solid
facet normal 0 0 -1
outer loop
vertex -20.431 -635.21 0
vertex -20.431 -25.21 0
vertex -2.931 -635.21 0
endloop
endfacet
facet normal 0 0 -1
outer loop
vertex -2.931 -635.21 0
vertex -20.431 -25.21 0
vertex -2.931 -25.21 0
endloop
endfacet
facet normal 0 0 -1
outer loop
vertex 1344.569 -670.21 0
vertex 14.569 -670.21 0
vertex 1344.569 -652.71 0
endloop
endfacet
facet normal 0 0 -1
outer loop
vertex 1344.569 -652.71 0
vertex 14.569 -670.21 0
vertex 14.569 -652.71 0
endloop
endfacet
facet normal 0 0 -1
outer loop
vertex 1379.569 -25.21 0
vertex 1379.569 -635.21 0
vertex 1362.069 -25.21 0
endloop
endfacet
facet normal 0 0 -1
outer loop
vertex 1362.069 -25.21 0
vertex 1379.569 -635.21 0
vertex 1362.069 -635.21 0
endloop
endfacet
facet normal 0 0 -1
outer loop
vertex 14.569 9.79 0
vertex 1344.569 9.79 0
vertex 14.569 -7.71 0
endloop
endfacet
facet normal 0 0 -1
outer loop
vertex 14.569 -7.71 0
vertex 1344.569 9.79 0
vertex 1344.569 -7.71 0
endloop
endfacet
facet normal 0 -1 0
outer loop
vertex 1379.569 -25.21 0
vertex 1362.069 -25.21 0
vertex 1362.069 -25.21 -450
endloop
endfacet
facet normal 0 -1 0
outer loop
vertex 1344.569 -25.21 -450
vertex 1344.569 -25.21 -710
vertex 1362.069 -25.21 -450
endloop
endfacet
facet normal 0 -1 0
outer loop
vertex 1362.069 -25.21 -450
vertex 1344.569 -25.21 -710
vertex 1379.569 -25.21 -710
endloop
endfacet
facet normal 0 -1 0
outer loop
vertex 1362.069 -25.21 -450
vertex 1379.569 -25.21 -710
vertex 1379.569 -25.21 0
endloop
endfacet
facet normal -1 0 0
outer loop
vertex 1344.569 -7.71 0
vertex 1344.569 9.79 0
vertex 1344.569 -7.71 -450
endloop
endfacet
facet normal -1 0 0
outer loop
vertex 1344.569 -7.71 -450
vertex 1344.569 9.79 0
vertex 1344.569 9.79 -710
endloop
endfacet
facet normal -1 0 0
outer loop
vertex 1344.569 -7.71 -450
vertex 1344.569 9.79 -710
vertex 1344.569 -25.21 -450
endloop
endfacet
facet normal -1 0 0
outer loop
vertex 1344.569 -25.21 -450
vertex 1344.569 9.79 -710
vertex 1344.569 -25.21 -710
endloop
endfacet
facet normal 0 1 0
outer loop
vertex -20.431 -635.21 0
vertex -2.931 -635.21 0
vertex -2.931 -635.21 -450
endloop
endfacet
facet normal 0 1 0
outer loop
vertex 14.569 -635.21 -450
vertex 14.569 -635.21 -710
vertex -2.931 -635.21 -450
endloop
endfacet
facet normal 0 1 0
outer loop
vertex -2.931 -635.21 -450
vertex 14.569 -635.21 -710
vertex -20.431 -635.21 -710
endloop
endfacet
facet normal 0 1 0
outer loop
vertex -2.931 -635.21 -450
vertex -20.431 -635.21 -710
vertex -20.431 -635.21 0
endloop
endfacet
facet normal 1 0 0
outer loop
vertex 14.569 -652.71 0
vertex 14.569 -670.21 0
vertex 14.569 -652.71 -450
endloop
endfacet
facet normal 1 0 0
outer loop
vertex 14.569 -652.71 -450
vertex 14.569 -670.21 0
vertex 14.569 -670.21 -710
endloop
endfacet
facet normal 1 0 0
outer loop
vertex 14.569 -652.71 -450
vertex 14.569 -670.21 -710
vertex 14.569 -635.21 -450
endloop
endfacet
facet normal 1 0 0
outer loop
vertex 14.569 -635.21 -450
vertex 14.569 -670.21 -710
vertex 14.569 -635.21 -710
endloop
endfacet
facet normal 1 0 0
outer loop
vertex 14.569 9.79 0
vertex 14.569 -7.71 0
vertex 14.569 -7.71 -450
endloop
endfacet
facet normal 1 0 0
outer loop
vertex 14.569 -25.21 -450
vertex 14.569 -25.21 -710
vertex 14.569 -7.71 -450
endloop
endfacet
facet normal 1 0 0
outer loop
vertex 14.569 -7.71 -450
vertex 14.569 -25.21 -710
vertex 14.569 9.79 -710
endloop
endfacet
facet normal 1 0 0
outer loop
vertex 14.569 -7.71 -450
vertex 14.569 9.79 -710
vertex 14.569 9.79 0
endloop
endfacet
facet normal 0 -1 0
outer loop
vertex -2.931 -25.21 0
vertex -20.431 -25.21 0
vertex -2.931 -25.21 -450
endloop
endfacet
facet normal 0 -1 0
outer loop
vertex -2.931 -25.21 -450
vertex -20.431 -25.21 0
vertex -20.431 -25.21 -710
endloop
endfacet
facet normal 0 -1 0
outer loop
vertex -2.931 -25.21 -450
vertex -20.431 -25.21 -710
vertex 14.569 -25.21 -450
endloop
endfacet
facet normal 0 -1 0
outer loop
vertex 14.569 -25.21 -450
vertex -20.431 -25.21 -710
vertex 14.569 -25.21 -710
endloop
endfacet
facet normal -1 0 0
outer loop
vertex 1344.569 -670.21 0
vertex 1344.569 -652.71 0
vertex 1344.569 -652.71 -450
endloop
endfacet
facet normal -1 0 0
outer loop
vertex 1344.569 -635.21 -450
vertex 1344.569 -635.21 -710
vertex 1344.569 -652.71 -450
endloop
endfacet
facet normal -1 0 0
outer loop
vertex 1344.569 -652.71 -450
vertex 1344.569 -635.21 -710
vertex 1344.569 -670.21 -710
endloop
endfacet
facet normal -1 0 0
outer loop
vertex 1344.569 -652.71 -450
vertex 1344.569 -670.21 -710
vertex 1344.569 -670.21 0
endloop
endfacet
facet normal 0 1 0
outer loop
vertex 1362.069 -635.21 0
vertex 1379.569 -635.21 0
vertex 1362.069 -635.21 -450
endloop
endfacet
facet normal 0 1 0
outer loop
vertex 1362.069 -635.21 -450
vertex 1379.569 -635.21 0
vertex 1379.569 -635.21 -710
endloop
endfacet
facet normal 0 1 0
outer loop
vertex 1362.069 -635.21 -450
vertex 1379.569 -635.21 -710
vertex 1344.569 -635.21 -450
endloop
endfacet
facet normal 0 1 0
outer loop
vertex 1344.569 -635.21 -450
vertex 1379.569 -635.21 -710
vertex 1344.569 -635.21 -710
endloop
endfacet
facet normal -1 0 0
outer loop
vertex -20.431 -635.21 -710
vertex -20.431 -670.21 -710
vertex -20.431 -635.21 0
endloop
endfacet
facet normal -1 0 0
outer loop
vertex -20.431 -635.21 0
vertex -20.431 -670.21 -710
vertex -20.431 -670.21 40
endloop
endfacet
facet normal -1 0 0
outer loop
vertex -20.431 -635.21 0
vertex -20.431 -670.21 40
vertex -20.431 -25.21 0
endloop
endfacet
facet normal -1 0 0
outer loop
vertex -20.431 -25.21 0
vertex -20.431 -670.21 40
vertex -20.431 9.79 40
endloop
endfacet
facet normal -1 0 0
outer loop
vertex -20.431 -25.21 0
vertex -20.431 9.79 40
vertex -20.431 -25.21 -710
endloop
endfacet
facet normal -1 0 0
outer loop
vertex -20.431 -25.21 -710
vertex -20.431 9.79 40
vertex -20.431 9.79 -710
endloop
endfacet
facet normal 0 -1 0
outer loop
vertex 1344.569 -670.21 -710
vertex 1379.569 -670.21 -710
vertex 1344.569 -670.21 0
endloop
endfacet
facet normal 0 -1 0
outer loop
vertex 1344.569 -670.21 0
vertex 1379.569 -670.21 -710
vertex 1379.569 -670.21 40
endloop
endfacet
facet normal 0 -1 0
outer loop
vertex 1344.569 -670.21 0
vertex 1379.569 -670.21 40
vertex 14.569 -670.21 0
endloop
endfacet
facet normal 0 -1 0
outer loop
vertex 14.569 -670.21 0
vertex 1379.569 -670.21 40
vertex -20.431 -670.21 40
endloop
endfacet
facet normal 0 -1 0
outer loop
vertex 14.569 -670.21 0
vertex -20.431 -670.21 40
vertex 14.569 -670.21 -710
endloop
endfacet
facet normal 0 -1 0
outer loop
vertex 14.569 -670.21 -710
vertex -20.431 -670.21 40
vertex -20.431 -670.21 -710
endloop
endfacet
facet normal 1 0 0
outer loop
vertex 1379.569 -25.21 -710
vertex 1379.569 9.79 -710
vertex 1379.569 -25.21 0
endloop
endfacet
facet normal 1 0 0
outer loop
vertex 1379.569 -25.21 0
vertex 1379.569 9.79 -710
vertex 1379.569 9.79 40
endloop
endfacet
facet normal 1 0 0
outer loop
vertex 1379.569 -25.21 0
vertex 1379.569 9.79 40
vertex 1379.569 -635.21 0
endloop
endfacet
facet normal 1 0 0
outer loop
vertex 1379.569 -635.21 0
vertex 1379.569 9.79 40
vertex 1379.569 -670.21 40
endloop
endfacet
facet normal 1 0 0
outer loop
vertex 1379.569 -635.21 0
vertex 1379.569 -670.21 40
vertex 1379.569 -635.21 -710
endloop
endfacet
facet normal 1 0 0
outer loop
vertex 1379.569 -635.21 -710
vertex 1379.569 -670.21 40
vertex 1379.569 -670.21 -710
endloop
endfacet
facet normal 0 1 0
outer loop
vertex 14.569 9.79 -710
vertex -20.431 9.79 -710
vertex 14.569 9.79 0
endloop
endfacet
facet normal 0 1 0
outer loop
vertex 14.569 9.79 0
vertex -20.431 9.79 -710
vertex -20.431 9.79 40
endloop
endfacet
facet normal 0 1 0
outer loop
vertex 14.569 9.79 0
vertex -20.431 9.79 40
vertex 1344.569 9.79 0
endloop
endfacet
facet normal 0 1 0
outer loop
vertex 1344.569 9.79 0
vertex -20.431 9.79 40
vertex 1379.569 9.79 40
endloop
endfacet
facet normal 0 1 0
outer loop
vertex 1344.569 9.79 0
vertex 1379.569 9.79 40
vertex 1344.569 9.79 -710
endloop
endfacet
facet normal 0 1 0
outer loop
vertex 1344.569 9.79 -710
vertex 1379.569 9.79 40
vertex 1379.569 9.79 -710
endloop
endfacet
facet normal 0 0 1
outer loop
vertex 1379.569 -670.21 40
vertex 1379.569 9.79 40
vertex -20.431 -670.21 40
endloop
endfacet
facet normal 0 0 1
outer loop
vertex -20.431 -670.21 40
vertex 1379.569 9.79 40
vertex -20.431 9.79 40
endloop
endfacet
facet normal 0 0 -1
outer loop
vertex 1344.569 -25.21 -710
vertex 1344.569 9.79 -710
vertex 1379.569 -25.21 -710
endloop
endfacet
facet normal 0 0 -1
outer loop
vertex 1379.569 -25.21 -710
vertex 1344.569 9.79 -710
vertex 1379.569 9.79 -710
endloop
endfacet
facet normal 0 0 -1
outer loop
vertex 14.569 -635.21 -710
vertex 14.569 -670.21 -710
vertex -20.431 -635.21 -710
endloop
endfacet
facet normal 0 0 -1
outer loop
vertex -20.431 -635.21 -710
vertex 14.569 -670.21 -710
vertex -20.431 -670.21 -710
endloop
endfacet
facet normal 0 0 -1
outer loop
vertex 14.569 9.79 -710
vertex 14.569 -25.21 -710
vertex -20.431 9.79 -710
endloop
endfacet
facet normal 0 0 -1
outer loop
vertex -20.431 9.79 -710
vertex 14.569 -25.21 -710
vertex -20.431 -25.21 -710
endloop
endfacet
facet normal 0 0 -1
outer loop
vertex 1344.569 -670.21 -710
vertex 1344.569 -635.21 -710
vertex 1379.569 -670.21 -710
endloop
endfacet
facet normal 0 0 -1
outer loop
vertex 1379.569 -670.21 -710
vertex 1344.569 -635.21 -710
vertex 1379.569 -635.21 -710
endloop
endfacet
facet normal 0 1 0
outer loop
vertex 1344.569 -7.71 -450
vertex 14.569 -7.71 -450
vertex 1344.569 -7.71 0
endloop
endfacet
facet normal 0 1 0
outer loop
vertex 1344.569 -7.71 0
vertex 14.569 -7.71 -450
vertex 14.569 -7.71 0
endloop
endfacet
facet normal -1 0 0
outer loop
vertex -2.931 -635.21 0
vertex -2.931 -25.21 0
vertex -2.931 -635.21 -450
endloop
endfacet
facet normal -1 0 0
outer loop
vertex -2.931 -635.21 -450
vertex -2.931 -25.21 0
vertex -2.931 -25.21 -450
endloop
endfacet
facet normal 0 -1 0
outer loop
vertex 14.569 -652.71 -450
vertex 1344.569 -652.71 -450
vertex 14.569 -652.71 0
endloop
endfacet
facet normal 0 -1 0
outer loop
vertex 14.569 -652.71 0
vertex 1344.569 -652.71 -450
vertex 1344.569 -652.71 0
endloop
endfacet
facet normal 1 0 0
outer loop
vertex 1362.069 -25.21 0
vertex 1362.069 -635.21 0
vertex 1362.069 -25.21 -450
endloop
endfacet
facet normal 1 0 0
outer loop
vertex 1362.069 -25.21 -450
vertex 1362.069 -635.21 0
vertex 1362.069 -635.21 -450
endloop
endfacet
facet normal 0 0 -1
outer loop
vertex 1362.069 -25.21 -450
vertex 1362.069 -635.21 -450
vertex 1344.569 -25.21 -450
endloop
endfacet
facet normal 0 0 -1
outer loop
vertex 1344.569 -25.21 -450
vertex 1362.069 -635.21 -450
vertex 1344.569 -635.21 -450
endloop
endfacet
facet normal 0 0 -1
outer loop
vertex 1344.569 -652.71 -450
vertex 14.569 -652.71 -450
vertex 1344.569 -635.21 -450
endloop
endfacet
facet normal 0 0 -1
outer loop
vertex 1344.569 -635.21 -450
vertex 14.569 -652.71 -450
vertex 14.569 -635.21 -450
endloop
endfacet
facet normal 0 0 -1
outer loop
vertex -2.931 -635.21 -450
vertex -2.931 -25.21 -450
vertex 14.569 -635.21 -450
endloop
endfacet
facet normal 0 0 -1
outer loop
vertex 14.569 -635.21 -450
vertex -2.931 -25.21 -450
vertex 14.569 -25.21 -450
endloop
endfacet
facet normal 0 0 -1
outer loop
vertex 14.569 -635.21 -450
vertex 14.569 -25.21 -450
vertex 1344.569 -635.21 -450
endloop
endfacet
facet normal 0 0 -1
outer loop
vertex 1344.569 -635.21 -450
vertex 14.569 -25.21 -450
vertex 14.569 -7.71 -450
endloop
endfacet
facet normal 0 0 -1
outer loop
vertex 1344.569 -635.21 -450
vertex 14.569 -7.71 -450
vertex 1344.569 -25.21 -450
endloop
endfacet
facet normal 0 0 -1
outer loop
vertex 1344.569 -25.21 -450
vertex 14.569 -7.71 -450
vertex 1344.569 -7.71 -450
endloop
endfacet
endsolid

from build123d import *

# Parameters (mm, degrees)
SKIZZE1_W                       = 1400
SKIZZE1_H                       = 680
AUFSATZ_LINEAR_AUSTRAGEN1_DEPTH = 40
SKIZZE2_W                       = 35
SKIZZE2_H                       = 35
AUFSATZ_LINEAR_AUSTRAGEN2_DEPTH = 710
SKIZZE3_W                       = 1365
SKIZZE3_H                       = 645
AUFSATZ_LINEAR_AUSTRAGEN3_DEPTH = 450


with BuildPart() as part:
    # Skizze1 → Aufsatz-Linear austragen1 (new body)
    with BuildSketch(Plane.XY):
        with Locations((679.568580104, -330.209944633)):
            Rectangle(SKIZZE1_W, SKIZZE1_H)
    extrude(amount=AUFSATZ_LINEAR_AUSTRAGEN1_DEPTH)

    # Skizze2 → Aufsatz-Linear austragen2 (add)
    with BuildSketch(Plane(origin=(0, 0, 0), x_dir=(-1, 0, 0), z_dir=(0, 0, -1))):
        with Locations((-1362.068580104, -7.709944633)):
            Rectangle(SKIZZE2_W, SKIZZE2_H)
        with Locations((-1362.068580104, -652.709944633)):
            Rectangle(SKIZZE2_W, SKIZZE2_H)
        with Locations((2.931419896, -7.709944633)):
            Rectangle(SKIZZE2_W, SKIZZE2_H)
        with Locations((2.931419896, -652.709944633)):
            Rectangle(SKIZZE2_W, SKIZZE2_H)
    extrude(amount=AUFSATZ_LINEAR_AUSTRAGEN2_DEPTH)

    # Skizze3 → Aufsatz-Linear austragen3 (add)
    with BuildSketch(Plane(origin=(0, 0, 0), x_dir=(-1, 0, 0), z_dir=(0, 0, -1))):
        with Locations((-679.568580104, -330.209944633)):
            Rectangle(SKIZZE3_W, SKIZZE3_H)
    extrude(amount=AUFSATZ_LINEAR_AUSTRAGEN3_DEPTH)


solid = part.part
